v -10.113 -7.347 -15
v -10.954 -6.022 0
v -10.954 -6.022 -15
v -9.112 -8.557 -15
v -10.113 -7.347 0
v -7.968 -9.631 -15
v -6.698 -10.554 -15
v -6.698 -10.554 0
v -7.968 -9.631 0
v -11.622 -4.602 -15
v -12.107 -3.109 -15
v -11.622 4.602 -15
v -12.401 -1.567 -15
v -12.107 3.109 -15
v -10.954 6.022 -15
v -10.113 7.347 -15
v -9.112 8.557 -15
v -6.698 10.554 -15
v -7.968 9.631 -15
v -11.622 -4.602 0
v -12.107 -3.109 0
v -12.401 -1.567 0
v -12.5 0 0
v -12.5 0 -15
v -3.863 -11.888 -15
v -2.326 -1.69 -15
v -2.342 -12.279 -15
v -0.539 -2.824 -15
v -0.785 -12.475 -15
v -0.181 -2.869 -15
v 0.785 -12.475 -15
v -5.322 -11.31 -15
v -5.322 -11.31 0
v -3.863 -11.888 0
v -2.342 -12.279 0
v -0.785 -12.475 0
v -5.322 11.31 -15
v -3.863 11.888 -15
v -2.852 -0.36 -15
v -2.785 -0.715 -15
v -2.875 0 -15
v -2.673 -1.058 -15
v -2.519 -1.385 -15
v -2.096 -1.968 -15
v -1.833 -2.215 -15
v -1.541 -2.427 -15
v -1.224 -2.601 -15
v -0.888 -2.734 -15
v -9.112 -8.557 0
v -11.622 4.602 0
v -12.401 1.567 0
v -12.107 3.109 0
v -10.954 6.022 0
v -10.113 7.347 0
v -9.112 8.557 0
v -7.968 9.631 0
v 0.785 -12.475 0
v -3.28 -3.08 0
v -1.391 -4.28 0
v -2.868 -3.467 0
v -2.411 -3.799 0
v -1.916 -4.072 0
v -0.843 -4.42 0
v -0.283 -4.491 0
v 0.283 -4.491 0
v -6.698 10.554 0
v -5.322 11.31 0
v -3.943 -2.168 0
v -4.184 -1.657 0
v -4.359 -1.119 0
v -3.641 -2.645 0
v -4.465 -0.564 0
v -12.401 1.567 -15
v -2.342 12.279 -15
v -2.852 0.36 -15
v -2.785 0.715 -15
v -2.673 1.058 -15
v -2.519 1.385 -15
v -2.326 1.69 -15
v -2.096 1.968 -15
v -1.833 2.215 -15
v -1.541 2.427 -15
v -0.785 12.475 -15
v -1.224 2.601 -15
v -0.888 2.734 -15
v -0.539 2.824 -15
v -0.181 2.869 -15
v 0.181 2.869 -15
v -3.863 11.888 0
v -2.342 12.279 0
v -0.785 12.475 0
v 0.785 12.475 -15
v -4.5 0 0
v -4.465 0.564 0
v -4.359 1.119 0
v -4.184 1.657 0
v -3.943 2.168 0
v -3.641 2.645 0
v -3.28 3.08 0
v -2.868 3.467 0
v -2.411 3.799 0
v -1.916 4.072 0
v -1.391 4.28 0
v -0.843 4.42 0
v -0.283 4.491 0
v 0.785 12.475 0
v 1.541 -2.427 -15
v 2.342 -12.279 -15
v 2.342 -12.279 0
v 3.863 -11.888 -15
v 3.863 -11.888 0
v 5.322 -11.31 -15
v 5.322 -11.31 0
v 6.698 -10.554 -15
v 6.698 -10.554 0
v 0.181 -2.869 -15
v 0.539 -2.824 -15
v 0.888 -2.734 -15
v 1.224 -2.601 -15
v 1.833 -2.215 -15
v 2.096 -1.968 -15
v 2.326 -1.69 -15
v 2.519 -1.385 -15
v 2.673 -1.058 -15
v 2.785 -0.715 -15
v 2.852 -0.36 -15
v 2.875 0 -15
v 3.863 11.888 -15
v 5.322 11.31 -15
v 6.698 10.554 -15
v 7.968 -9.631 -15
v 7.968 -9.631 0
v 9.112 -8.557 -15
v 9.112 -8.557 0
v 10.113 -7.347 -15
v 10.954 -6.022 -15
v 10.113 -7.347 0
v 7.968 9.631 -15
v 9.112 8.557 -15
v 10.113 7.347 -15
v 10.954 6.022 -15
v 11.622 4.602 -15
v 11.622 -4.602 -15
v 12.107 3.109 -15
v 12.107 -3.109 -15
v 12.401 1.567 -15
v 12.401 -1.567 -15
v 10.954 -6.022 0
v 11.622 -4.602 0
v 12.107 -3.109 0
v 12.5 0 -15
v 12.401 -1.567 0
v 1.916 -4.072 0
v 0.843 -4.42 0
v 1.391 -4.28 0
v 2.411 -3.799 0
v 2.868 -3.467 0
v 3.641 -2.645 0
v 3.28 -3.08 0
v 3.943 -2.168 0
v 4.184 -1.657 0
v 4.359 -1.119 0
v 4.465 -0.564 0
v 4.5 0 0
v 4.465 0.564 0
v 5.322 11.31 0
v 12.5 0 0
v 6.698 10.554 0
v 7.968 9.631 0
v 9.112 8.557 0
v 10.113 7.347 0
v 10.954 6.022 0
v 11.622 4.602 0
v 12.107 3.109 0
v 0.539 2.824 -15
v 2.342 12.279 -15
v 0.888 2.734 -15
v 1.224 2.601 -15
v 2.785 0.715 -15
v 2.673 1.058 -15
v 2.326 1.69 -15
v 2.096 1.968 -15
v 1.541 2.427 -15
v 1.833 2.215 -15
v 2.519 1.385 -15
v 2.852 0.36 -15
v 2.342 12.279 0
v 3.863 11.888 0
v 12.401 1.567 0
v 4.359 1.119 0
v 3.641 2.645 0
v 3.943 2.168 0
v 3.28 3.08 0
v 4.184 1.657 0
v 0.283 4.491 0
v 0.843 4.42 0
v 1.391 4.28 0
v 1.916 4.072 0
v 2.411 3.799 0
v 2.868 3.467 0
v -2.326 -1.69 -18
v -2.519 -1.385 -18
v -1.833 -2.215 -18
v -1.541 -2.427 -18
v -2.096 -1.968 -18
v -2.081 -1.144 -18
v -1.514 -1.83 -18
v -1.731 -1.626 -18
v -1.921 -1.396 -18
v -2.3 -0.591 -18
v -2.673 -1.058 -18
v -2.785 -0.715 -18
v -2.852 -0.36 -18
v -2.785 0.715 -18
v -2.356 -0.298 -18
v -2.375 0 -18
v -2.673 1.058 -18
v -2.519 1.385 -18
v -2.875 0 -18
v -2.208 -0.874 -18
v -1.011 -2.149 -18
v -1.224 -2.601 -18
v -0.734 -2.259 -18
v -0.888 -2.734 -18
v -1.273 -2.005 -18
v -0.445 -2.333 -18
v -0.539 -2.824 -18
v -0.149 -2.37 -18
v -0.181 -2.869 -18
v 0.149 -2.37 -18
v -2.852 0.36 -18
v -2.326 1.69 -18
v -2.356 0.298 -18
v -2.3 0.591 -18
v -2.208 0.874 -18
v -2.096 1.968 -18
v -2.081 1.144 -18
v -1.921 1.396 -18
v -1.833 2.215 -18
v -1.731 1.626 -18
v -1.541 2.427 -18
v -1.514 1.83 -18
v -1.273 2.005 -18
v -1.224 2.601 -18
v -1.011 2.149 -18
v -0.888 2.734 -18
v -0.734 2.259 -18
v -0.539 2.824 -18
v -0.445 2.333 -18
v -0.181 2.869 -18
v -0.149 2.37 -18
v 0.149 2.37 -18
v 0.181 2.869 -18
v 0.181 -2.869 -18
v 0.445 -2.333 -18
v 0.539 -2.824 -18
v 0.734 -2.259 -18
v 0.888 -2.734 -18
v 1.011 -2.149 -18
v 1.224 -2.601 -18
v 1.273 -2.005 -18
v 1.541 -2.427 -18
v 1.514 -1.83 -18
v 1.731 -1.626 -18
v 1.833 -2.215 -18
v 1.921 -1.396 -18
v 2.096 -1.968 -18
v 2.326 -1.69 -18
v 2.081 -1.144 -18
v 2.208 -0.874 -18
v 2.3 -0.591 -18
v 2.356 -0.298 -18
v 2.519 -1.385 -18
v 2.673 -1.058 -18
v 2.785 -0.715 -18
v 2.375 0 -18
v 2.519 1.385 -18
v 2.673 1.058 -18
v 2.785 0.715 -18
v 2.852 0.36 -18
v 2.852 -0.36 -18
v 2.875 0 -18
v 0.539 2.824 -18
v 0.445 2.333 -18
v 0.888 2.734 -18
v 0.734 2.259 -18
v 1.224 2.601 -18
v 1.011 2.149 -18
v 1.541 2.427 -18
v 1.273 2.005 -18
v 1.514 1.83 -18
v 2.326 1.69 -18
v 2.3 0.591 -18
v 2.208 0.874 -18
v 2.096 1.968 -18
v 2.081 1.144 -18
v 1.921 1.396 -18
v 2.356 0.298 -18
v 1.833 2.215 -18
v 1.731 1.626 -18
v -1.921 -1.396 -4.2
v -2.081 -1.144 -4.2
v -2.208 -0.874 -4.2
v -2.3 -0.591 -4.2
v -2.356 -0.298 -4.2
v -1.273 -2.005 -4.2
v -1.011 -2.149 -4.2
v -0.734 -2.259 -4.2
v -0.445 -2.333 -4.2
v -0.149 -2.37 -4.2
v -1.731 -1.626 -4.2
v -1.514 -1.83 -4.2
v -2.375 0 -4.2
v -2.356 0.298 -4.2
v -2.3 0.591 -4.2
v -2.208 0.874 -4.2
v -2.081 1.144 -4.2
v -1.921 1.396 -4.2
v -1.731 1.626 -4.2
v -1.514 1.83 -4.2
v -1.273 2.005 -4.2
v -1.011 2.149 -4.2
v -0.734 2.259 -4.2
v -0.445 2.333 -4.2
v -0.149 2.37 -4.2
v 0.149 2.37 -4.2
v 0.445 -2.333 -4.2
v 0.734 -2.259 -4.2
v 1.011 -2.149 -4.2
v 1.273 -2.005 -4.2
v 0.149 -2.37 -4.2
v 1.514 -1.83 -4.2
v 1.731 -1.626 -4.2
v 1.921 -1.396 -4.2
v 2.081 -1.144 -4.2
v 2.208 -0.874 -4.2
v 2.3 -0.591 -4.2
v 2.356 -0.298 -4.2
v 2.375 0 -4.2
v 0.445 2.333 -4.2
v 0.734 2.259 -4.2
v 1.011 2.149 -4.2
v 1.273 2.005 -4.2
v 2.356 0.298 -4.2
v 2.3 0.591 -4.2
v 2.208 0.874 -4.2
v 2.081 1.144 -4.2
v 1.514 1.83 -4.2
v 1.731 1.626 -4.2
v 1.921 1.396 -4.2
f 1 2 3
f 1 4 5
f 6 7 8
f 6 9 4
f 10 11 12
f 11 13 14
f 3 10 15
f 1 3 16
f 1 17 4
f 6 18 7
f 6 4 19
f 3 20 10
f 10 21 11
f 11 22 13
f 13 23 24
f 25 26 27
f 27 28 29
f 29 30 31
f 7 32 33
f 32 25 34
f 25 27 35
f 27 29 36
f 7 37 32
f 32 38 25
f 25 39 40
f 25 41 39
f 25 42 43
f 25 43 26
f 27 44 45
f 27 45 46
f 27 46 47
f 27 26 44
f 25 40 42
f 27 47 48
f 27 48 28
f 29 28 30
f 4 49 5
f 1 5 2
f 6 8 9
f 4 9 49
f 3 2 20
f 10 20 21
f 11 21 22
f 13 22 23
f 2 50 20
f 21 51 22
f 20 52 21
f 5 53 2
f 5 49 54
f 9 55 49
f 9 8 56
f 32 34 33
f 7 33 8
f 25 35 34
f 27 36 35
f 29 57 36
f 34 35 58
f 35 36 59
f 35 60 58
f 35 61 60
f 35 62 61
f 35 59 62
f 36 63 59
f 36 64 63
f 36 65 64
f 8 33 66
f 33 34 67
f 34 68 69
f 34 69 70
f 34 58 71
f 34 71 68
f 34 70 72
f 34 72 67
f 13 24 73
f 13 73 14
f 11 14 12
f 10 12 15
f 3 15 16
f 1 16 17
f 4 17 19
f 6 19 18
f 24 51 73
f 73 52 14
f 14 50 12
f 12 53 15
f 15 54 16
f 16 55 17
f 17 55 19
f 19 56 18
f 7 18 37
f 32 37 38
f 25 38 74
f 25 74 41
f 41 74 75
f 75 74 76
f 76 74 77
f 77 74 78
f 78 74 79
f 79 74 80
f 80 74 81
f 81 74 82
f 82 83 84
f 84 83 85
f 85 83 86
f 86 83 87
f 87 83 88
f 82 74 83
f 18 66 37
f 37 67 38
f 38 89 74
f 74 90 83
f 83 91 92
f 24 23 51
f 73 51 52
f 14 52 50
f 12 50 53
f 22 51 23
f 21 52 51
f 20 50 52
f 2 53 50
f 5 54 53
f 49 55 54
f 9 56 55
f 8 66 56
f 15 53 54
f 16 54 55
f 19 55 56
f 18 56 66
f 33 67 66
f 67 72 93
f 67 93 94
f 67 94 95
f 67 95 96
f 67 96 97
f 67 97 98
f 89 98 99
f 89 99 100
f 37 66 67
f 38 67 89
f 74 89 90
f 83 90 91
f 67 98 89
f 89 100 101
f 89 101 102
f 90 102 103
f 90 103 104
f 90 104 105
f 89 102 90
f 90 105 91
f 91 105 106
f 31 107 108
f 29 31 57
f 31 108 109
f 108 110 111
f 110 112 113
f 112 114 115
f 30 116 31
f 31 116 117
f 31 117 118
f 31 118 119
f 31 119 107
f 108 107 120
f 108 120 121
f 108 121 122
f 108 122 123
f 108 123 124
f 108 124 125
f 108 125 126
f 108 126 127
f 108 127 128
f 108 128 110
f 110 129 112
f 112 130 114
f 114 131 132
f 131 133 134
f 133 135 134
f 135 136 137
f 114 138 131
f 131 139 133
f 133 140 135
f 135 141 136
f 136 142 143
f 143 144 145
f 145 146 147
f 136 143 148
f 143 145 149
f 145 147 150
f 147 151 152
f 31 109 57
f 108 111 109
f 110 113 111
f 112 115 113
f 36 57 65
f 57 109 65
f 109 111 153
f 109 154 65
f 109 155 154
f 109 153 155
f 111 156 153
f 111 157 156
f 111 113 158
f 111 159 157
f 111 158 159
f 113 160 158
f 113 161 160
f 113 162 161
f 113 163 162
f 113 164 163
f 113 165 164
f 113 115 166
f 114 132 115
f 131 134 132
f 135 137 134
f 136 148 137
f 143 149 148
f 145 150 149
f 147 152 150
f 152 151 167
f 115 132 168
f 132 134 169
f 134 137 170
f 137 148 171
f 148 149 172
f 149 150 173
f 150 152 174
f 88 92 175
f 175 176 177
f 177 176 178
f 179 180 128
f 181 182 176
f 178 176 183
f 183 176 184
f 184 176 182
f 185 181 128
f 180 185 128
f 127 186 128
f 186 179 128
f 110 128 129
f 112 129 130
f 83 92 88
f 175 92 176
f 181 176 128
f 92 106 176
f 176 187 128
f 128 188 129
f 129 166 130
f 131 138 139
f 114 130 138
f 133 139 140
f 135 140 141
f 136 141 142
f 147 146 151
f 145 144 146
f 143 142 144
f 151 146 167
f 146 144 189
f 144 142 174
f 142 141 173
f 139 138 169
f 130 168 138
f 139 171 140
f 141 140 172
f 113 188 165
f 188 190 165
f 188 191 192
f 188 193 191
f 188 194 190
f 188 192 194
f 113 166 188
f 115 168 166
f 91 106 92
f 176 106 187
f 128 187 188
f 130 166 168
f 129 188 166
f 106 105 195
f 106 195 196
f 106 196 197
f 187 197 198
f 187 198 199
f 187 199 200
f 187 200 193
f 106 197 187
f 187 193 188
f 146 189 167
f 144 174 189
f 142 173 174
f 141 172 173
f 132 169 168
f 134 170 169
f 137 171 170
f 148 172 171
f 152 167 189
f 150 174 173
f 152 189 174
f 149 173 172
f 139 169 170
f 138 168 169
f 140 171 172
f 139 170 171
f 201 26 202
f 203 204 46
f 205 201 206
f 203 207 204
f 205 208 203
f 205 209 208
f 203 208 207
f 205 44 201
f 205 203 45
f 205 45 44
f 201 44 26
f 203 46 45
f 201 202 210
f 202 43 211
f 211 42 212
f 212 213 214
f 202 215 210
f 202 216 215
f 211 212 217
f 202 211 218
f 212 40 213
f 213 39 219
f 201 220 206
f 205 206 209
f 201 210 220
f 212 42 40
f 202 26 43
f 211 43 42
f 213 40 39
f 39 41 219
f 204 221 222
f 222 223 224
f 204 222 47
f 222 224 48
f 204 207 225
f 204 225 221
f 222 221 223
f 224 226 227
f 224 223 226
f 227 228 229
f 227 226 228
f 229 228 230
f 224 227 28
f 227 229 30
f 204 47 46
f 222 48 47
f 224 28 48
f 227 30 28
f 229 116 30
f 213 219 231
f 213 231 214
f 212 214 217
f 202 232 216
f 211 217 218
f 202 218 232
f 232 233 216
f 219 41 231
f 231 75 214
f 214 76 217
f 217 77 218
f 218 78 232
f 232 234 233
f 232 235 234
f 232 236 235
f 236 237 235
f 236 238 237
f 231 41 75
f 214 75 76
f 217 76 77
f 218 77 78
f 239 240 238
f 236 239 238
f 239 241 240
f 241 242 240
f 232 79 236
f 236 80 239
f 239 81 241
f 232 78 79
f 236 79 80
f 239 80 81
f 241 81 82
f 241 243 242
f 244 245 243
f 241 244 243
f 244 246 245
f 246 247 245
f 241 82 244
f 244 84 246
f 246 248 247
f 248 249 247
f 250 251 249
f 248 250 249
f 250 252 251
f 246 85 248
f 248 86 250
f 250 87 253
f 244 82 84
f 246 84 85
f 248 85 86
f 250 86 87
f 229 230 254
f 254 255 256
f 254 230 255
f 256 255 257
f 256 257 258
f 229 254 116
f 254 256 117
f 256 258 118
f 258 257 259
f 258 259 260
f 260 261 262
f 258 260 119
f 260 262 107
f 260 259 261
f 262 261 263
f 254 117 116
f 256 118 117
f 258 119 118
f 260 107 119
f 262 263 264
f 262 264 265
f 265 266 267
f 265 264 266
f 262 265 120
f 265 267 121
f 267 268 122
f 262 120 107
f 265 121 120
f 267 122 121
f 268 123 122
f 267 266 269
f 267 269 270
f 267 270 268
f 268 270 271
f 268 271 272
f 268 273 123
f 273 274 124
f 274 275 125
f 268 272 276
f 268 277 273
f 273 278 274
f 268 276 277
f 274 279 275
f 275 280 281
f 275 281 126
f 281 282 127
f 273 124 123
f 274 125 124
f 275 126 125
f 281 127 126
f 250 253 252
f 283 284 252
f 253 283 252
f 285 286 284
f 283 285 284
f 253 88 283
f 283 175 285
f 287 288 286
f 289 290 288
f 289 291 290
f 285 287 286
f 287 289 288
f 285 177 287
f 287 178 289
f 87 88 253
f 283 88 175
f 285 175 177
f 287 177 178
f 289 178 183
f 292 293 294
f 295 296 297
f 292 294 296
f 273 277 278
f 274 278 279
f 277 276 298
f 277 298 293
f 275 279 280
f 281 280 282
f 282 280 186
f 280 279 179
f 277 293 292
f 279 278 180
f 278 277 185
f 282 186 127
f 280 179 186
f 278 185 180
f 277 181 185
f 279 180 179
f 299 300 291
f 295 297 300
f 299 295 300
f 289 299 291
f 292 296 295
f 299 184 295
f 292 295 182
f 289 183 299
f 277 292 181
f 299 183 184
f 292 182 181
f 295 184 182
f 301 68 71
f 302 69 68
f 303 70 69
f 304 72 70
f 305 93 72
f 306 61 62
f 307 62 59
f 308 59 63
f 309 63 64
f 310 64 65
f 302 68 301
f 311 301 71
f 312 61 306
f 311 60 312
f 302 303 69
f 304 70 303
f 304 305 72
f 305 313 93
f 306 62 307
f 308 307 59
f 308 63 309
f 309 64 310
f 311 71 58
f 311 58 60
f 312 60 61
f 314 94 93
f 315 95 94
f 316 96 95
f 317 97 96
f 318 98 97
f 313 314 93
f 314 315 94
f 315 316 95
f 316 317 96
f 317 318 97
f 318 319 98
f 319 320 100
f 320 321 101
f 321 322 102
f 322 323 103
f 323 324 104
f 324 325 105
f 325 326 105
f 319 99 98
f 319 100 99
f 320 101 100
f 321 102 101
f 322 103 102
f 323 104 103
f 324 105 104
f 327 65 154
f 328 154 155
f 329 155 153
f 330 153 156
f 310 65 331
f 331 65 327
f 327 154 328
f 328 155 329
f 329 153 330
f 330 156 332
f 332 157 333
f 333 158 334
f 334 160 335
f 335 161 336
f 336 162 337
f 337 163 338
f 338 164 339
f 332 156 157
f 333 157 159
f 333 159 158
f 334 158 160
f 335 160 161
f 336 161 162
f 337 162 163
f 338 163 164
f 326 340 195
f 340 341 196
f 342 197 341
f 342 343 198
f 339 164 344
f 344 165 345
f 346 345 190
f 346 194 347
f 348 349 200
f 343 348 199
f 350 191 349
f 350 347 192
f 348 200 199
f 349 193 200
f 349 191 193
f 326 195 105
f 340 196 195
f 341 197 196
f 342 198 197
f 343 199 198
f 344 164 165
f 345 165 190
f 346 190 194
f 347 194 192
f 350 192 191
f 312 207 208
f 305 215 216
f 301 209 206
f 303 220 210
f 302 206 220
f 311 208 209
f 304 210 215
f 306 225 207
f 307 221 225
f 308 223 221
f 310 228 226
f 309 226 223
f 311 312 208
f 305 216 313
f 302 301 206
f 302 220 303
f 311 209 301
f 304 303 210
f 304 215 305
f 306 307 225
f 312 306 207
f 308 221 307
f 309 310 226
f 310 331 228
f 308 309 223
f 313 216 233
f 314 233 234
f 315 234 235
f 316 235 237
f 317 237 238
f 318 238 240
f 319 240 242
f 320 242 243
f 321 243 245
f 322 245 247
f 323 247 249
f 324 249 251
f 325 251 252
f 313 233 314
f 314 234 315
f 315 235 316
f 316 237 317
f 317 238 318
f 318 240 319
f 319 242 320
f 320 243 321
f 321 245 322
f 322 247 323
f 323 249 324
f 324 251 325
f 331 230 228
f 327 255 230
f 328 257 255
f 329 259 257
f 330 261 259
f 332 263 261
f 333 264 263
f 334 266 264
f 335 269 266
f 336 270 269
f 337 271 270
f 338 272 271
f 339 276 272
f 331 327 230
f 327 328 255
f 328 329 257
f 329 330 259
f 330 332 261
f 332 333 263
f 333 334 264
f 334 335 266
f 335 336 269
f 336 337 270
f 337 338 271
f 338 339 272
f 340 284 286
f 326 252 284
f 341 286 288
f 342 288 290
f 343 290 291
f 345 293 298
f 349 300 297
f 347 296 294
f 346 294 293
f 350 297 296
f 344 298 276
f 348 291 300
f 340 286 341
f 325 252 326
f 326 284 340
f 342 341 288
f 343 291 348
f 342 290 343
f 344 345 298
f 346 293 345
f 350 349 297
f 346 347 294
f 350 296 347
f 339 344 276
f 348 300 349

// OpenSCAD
$fn = 50;


difference() {
	union() {
		translate(v = [0, 0, -15.0000000000]) {
			cylinder(h = 15, r = 12.5000000000);
		}
		#translate(v = [0, 0, -18.0000000000]) {
			cylinder(h = 18, r = 2.8750000000);
		}
	}
	union() {
		translate(v = [0, 0, 0]) {
			rotate(a = [0, 0, 0]) {
				difference() {
					union() {
						translate(v = [0, 0, -18.0000000000]) {
							cylinder(h = 18, r = 2.2500000000);
						}
						translate(v = [0, 0, -4.2000000000]) {
							cylinder(h = 4.2000000000, r1 = 2.3750000000, r2 = 4.5000000000);
						}
						translate(v = [0, 0, -18.0000000000]) {
							cylinder(h = 18, r = 2.3750000000);
						}
						translate(v = [0, 0, -18.0000000000]) {
							cylinder(h = 18, r = 2.2500000000);
						}
					}
					union();
				}
			}
		}
	}
}
